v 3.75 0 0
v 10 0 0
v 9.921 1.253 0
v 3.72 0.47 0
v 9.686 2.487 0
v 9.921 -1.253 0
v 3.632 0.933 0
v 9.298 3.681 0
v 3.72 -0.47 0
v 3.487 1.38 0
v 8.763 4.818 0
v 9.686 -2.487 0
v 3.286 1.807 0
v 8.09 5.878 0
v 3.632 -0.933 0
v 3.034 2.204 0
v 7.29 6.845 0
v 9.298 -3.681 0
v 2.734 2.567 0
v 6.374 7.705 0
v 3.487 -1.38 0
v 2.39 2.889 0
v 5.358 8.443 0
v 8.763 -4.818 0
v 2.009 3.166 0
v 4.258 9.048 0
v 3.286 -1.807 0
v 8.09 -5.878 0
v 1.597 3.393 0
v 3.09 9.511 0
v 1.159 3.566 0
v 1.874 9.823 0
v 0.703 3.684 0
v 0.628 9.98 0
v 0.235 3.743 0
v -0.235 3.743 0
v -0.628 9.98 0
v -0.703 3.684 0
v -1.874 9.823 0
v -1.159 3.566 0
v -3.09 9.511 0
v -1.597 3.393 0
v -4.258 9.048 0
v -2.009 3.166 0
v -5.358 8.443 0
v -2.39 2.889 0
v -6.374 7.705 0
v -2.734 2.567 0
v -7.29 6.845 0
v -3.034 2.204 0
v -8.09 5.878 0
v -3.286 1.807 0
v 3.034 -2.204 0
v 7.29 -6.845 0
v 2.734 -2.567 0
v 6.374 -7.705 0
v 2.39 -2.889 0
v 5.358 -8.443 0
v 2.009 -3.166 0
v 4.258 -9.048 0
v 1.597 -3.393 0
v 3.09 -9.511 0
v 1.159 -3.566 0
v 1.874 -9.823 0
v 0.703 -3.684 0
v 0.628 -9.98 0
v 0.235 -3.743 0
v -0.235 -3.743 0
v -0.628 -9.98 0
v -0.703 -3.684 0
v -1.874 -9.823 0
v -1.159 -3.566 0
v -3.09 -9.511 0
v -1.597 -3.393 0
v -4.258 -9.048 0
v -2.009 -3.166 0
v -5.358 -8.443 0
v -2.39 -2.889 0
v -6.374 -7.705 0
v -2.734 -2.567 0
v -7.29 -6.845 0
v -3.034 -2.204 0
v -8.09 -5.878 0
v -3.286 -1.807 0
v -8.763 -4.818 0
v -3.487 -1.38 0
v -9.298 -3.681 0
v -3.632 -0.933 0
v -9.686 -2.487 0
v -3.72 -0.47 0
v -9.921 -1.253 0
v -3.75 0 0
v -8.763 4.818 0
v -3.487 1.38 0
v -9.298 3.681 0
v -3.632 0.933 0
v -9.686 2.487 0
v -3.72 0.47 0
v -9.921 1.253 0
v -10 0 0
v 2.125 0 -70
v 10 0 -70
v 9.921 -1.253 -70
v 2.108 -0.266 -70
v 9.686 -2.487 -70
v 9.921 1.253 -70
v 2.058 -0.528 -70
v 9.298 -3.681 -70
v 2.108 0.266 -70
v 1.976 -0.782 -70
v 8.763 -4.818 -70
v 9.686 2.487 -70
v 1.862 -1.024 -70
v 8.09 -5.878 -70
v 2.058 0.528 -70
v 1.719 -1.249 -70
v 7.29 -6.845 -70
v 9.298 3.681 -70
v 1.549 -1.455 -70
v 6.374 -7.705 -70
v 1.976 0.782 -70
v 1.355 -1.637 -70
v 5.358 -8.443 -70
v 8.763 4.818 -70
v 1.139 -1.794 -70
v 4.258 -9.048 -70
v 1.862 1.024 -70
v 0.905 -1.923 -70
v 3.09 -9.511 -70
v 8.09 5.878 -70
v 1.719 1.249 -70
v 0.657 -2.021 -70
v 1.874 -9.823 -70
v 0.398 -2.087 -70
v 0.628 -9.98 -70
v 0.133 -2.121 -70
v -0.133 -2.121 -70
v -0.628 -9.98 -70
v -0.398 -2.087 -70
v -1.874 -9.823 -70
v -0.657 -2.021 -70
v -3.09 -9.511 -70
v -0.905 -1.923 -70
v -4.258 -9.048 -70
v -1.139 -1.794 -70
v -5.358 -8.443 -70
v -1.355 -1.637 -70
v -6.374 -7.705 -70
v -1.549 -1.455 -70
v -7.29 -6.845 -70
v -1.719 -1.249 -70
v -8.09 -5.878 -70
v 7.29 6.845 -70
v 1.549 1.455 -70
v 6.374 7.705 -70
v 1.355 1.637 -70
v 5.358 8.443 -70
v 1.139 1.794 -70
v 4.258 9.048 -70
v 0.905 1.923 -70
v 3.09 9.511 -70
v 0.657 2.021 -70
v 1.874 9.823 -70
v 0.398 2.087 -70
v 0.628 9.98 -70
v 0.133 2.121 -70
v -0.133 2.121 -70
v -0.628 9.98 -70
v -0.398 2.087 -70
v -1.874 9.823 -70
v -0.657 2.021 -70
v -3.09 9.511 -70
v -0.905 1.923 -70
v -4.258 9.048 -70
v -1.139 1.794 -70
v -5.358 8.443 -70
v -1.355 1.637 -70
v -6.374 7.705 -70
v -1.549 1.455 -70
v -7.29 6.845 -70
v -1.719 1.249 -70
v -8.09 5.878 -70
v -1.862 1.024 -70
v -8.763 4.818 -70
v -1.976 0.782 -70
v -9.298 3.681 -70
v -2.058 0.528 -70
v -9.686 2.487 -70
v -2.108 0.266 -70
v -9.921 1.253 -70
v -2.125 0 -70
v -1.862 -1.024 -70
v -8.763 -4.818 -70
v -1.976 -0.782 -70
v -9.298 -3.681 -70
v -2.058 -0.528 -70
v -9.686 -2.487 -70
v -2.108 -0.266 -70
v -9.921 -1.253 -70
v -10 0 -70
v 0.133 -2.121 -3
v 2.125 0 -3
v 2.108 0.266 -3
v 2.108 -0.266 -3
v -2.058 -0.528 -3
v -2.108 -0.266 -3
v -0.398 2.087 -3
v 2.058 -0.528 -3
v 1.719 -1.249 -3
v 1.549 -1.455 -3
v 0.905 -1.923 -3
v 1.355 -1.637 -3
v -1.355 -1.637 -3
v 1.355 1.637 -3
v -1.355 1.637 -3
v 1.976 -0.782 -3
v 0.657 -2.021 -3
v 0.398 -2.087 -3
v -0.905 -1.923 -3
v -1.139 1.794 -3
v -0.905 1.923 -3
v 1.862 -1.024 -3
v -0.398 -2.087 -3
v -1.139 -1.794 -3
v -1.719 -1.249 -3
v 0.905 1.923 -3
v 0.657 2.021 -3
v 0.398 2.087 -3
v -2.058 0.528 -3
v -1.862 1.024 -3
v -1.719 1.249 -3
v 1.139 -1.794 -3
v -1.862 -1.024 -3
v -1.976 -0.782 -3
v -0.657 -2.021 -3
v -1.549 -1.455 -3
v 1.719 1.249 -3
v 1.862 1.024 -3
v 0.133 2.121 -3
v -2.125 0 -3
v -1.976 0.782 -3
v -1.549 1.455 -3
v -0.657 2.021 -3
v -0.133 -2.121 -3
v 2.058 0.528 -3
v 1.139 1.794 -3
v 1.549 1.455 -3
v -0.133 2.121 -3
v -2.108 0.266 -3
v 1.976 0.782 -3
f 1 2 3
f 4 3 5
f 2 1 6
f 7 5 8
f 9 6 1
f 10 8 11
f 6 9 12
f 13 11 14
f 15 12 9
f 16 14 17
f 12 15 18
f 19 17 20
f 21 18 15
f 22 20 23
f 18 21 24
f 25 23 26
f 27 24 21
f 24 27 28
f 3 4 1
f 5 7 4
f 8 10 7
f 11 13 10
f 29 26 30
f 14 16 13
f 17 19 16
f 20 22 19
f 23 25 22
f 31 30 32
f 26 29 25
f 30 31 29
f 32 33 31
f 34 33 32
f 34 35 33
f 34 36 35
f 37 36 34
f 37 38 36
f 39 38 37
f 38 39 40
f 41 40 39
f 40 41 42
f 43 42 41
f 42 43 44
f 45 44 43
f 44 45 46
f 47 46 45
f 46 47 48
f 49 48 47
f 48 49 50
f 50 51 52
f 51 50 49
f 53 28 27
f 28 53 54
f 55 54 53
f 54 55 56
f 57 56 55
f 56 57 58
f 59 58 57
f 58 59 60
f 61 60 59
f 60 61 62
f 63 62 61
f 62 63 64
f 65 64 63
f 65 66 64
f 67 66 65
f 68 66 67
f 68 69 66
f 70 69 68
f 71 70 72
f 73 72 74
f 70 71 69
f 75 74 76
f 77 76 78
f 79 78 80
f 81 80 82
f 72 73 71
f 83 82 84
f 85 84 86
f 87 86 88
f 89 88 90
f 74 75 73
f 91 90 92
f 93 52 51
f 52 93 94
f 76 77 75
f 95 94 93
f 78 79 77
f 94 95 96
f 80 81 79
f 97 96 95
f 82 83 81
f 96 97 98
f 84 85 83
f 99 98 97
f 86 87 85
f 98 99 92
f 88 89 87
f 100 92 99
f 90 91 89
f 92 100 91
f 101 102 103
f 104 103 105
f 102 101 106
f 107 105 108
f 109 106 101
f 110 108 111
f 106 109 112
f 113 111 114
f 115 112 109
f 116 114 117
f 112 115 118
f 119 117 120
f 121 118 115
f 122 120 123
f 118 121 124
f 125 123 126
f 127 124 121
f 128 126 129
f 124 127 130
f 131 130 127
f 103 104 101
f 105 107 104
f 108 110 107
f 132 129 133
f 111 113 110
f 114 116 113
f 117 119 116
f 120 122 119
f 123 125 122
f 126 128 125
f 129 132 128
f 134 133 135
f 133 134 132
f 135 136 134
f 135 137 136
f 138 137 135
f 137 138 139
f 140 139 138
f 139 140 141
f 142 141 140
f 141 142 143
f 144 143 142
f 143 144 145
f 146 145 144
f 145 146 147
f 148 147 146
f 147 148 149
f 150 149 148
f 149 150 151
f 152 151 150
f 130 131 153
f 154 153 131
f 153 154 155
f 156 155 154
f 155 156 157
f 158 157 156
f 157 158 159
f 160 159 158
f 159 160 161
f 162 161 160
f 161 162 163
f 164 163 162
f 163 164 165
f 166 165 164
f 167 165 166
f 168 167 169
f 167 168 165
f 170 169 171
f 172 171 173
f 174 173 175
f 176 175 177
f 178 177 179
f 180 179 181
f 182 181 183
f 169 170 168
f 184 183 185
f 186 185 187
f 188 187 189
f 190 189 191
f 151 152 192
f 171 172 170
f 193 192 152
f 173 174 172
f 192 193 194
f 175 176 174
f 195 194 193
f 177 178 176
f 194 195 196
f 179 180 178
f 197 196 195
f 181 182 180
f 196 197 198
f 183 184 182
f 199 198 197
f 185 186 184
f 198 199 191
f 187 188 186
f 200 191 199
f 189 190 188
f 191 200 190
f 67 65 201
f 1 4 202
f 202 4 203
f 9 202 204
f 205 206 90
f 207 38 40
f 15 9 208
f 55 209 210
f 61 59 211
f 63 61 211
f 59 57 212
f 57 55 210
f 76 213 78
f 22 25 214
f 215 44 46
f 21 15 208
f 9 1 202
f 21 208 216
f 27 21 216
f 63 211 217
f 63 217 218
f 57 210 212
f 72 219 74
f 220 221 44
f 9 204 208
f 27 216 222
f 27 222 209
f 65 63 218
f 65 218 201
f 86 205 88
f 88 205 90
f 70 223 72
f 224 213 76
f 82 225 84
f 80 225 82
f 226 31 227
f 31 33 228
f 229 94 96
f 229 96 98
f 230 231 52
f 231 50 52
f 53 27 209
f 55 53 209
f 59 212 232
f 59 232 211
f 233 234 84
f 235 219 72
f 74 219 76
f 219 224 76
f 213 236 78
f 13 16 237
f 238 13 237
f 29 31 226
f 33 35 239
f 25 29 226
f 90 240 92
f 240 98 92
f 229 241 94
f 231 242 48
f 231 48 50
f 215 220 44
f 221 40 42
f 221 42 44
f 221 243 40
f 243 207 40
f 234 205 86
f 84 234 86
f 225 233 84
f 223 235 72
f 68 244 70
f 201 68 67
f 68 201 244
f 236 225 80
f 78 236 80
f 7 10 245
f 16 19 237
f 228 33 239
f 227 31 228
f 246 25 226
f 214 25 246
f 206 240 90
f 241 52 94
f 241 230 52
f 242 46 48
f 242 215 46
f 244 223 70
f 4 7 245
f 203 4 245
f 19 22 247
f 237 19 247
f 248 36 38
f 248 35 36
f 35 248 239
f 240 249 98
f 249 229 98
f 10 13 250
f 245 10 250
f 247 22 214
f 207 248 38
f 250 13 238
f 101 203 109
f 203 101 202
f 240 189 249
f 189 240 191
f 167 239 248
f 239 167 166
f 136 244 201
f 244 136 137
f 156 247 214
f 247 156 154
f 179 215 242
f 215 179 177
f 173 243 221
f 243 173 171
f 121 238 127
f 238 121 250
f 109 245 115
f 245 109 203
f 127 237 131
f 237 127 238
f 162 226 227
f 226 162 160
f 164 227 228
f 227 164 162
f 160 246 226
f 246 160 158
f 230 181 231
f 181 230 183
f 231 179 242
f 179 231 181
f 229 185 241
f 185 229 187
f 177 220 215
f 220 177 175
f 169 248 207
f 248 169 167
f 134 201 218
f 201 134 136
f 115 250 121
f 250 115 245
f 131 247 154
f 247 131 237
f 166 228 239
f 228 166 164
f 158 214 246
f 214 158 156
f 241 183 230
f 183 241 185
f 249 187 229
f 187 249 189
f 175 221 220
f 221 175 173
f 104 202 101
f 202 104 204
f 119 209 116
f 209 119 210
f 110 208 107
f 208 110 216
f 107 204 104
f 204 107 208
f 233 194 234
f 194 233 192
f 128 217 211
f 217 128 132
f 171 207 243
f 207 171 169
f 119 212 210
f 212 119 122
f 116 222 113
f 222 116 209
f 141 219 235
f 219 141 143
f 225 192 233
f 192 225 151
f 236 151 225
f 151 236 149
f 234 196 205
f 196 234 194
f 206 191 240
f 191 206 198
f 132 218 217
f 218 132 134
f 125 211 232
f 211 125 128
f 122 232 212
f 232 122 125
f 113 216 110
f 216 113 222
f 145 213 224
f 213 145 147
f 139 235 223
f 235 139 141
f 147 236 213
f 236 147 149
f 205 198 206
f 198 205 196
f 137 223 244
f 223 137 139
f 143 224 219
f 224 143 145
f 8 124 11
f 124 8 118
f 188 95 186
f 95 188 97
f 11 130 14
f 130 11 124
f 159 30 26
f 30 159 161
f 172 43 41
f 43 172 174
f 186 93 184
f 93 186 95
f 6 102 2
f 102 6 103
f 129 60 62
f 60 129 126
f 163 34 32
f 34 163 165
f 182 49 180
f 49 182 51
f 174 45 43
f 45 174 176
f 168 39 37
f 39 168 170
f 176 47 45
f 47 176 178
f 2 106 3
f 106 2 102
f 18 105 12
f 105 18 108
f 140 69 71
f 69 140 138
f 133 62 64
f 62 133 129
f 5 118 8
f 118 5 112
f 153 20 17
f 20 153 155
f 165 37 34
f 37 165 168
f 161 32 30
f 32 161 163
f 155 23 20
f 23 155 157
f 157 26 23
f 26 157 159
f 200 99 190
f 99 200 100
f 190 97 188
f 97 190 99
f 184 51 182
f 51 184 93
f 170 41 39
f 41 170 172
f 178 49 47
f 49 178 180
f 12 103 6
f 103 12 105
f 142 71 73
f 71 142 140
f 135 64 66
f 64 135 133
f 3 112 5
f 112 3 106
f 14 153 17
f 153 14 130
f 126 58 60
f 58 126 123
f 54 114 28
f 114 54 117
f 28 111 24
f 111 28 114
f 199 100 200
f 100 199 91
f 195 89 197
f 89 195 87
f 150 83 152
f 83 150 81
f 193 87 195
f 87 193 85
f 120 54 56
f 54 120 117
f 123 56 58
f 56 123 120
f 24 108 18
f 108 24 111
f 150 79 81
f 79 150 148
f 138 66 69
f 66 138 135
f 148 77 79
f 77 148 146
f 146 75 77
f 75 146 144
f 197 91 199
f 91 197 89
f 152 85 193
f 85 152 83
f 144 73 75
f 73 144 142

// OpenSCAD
$fn = 50;


difference() {
	union() {
		translate(v = [0, 0, -70.0000000000]) {
			cylinder(h = 70, r = 10.0000000000);
		}
	}
	union() {
		translate(v = [0, 0, 0]) {
			rotate(a = [0, 0, 0]) {
				difference() {
					union() {
						#translate(v = [0, 0, -70.0000000000]) {
							cylinder(h = 70, r = 2.0000000000);
						}
						#translate(v = [0, 0, -3]) {
							cylinder(h = 3, r1 = 2.1250000000, r2 = 3.7500000000);
						}
						#translate(v = [0, 0, -70.0000000000]) {
							cylinder(h = 70, r = 2.1250000000);
						}
						#translate(v = [0, 0, -70.0000000000]) {
							cylinder(h = 70, r = 2.0000000000);
						}
					}
					union();
				}
			}
		}
	}
}
